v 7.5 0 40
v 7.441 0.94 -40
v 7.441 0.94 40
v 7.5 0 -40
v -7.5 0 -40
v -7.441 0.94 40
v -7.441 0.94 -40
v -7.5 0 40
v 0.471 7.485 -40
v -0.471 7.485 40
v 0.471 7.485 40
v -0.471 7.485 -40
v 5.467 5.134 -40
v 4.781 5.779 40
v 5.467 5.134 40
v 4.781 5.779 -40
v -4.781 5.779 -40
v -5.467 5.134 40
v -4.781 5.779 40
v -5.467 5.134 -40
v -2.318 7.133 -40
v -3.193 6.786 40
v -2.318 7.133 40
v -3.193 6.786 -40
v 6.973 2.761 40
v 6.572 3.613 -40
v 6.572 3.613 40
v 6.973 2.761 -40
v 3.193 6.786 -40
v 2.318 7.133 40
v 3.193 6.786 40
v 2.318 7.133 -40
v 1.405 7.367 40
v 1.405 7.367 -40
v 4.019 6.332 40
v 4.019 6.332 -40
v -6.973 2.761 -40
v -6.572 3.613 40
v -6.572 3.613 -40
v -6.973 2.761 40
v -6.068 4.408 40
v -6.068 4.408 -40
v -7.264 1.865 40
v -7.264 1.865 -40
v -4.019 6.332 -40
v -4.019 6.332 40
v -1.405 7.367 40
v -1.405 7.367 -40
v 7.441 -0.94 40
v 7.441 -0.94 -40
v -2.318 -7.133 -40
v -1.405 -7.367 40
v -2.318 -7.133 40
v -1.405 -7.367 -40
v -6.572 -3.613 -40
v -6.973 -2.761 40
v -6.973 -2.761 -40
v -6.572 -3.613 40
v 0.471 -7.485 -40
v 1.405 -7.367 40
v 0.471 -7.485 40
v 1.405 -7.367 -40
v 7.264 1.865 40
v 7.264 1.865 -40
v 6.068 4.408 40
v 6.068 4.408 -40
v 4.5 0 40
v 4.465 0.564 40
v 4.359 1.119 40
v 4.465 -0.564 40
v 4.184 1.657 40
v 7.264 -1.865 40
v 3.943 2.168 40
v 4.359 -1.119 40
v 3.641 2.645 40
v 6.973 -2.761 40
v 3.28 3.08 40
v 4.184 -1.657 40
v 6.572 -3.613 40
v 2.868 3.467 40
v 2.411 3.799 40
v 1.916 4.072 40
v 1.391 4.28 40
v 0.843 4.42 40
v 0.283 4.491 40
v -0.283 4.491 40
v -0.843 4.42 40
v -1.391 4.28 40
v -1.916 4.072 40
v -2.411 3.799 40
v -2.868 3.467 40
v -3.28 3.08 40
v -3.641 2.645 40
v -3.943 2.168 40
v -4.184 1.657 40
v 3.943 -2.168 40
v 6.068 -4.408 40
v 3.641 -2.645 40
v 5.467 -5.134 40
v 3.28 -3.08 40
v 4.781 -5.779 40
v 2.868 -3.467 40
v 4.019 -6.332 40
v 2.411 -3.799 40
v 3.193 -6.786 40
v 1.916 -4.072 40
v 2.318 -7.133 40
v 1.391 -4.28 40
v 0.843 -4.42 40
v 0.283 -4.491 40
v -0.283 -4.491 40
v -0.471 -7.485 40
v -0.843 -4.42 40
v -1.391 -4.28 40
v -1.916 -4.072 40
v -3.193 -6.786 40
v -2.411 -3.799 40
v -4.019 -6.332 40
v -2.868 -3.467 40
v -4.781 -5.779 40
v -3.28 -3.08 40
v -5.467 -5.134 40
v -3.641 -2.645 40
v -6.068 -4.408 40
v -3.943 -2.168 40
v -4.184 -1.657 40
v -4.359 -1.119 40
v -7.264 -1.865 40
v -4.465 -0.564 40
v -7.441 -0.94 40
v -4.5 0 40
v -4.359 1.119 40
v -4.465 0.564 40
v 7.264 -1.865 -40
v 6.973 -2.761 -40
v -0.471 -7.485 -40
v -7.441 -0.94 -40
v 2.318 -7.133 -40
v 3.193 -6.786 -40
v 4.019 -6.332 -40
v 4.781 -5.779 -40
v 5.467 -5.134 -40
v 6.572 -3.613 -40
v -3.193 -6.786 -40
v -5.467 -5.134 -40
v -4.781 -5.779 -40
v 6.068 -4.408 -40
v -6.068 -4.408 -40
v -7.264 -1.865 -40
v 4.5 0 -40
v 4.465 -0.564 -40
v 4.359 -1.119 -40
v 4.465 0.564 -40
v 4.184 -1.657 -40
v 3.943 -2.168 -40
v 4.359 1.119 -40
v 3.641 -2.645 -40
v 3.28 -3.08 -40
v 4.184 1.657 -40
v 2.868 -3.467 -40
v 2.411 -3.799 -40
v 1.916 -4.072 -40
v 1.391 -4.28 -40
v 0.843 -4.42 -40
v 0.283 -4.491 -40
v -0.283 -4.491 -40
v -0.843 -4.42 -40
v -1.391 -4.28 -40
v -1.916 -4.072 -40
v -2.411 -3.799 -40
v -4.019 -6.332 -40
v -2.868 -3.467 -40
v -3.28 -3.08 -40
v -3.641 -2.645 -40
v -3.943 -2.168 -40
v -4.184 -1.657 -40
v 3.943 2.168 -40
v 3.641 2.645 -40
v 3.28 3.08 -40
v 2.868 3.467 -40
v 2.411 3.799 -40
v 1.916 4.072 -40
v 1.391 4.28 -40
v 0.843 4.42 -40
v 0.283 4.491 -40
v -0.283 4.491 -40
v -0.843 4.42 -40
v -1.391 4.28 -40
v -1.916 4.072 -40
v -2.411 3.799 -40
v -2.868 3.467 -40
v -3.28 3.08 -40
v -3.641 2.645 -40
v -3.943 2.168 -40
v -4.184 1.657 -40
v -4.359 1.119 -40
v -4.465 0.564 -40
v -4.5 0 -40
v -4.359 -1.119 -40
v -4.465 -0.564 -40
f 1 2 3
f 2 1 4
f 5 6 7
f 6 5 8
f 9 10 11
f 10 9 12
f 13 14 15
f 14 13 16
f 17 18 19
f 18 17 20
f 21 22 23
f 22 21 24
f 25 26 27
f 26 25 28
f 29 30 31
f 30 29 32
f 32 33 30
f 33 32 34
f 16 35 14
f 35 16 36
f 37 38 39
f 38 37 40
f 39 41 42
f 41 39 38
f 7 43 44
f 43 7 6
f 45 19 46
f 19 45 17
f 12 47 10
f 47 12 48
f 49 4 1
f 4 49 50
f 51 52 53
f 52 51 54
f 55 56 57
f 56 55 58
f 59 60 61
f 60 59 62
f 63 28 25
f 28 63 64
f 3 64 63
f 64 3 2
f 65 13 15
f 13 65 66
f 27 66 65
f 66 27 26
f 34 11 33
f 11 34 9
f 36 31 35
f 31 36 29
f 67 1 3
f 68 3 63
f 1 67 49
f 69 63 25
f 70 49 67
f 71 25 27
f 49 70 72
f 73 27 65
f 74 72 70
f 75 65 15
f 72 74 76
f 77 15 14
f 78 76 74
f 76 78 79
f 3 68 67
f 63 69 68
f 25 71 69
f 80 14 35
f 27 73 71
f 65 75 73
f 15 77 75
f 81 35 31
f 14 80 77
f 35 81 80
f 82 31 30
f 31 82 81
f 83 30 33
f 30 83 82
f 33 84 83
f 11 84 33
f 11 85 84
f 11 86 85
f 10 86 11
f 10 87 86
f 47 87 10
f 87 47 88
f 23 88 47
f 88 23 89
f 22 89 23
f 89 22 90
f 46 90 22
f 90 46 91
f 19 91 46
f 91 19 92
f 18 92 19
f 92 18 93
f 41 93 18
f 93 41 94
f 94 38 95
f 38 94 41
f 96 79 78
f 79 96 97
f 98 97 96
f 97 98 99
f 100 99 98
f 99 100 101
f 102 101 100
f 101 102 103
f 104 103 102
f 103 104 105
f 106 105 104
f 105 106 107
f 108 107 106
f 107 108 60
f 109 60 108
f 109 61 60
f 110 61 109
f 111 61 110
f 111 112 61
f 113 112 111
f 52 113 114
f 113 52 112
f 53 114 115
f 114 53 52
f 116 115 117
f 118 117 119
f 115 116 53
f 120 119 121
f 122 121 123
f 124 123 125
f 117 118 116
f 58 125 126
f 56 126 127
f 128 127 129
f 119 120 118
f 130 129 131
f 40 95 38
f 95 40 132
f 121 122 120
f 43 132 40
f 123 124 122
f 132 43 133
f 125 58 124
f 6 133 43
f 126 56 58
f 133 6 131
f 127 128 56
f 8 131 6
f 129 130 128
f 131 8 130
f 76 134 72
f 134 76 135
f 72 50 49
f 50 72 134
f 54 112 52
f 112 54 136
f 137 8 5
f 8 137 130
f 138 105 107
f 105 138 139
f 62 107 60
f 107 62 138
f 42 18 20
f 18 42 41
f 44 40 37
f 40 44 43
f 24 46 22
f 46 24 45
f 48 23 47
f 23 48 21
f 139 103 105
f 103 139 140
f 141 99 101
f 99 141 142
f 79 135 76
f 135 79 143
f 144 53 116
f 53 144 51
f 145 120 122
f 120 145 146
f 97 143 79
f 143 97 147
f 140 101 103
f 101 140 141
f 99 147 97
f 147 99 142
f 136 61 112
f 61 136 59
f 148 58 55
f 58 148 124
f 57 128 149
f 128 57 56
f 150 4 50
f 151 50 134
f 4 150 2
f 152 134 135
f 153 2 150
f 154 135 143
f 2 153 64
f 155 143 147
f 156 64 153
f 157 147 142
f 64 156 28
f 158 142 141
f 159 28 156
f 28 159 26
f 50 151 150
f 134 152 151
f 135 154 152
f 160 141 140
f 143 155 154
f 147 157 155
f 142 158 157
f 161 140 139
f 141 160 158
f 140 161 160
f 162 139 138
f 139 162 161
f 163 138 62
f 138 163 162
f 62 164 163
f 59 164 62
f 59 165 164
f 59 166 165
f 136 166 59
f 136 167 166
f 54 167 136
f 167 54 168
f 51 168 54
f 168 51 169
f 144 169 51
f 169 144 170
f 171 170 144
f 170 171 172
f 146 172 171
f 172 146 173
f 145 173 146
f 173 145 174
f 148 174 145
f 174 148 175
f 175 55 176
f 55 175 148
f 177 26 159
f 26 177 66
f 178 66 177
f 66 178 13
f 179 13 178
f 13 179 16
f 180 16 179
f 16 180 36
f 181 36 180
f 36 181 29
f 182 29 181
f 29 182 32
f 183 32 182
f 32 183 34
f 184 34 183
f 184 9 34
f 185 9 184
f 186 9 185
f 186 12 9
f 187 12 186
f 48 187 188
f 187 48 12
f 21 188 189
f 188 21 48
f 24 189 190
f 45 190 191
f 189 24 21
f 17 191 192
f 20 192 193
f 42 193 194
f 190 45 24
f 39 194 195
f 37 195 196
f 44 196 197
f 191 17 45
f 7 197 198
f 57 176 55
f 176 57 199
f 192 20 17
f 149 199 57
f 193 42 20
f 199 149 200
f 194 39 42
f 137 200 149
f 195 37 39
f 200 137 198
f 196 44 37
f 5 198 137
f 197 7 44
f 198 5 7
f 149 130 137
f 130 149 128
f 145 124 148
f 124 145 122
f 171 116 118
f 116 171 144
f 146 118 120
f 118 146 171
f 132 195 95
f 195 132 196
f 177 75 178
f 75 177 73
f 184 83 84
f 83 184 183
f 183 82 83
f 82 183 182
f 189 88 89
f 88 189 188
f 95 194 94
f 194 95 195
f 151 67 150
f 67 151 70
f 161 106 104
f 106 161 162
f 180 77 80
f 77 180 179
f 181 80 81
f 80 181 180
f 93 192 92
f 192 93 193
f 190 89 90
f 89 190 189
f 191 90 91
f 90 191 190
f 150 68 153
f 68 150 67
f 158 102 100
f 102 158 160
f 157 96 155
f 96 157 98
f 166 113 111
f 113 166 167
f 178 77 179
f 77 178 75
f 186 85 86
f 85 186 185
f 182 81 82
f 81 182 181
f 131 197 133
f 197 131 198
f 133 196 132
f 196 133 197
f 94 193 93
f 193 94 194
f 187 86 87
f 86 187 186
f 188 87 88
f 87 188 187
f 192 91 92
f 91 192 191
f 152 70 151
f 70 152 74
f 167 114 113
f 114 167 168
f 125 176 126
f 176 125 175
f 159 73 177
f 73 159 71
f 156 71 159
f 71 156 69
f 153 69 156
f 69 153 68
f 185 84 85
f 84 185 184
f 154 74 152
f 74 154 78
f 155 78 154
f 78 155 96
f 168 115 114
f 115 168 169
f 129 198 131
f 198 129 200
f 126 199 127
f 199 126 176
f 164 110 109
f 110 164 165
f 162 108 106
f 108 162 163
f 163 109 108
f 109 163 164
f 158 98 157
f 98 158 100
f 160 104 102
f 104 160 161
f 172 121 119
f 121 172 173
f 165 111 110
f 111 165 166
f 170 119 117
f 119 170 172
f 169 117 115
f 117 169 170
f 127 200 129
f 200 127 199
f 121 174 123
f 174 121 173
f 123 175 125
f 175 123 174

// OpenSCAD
$fn = 50;


difference() {
	union() {
		translate(v = [0, 0, -40.0000000000]) {
			cylinder(h = 80, r = 7.5000000000);
		}
	}
	union() {
		translate(v = [0, 0, -100.0000000000]) {
			cylinder(h = 200, r = 4.5000000000);
		}
	}
}
